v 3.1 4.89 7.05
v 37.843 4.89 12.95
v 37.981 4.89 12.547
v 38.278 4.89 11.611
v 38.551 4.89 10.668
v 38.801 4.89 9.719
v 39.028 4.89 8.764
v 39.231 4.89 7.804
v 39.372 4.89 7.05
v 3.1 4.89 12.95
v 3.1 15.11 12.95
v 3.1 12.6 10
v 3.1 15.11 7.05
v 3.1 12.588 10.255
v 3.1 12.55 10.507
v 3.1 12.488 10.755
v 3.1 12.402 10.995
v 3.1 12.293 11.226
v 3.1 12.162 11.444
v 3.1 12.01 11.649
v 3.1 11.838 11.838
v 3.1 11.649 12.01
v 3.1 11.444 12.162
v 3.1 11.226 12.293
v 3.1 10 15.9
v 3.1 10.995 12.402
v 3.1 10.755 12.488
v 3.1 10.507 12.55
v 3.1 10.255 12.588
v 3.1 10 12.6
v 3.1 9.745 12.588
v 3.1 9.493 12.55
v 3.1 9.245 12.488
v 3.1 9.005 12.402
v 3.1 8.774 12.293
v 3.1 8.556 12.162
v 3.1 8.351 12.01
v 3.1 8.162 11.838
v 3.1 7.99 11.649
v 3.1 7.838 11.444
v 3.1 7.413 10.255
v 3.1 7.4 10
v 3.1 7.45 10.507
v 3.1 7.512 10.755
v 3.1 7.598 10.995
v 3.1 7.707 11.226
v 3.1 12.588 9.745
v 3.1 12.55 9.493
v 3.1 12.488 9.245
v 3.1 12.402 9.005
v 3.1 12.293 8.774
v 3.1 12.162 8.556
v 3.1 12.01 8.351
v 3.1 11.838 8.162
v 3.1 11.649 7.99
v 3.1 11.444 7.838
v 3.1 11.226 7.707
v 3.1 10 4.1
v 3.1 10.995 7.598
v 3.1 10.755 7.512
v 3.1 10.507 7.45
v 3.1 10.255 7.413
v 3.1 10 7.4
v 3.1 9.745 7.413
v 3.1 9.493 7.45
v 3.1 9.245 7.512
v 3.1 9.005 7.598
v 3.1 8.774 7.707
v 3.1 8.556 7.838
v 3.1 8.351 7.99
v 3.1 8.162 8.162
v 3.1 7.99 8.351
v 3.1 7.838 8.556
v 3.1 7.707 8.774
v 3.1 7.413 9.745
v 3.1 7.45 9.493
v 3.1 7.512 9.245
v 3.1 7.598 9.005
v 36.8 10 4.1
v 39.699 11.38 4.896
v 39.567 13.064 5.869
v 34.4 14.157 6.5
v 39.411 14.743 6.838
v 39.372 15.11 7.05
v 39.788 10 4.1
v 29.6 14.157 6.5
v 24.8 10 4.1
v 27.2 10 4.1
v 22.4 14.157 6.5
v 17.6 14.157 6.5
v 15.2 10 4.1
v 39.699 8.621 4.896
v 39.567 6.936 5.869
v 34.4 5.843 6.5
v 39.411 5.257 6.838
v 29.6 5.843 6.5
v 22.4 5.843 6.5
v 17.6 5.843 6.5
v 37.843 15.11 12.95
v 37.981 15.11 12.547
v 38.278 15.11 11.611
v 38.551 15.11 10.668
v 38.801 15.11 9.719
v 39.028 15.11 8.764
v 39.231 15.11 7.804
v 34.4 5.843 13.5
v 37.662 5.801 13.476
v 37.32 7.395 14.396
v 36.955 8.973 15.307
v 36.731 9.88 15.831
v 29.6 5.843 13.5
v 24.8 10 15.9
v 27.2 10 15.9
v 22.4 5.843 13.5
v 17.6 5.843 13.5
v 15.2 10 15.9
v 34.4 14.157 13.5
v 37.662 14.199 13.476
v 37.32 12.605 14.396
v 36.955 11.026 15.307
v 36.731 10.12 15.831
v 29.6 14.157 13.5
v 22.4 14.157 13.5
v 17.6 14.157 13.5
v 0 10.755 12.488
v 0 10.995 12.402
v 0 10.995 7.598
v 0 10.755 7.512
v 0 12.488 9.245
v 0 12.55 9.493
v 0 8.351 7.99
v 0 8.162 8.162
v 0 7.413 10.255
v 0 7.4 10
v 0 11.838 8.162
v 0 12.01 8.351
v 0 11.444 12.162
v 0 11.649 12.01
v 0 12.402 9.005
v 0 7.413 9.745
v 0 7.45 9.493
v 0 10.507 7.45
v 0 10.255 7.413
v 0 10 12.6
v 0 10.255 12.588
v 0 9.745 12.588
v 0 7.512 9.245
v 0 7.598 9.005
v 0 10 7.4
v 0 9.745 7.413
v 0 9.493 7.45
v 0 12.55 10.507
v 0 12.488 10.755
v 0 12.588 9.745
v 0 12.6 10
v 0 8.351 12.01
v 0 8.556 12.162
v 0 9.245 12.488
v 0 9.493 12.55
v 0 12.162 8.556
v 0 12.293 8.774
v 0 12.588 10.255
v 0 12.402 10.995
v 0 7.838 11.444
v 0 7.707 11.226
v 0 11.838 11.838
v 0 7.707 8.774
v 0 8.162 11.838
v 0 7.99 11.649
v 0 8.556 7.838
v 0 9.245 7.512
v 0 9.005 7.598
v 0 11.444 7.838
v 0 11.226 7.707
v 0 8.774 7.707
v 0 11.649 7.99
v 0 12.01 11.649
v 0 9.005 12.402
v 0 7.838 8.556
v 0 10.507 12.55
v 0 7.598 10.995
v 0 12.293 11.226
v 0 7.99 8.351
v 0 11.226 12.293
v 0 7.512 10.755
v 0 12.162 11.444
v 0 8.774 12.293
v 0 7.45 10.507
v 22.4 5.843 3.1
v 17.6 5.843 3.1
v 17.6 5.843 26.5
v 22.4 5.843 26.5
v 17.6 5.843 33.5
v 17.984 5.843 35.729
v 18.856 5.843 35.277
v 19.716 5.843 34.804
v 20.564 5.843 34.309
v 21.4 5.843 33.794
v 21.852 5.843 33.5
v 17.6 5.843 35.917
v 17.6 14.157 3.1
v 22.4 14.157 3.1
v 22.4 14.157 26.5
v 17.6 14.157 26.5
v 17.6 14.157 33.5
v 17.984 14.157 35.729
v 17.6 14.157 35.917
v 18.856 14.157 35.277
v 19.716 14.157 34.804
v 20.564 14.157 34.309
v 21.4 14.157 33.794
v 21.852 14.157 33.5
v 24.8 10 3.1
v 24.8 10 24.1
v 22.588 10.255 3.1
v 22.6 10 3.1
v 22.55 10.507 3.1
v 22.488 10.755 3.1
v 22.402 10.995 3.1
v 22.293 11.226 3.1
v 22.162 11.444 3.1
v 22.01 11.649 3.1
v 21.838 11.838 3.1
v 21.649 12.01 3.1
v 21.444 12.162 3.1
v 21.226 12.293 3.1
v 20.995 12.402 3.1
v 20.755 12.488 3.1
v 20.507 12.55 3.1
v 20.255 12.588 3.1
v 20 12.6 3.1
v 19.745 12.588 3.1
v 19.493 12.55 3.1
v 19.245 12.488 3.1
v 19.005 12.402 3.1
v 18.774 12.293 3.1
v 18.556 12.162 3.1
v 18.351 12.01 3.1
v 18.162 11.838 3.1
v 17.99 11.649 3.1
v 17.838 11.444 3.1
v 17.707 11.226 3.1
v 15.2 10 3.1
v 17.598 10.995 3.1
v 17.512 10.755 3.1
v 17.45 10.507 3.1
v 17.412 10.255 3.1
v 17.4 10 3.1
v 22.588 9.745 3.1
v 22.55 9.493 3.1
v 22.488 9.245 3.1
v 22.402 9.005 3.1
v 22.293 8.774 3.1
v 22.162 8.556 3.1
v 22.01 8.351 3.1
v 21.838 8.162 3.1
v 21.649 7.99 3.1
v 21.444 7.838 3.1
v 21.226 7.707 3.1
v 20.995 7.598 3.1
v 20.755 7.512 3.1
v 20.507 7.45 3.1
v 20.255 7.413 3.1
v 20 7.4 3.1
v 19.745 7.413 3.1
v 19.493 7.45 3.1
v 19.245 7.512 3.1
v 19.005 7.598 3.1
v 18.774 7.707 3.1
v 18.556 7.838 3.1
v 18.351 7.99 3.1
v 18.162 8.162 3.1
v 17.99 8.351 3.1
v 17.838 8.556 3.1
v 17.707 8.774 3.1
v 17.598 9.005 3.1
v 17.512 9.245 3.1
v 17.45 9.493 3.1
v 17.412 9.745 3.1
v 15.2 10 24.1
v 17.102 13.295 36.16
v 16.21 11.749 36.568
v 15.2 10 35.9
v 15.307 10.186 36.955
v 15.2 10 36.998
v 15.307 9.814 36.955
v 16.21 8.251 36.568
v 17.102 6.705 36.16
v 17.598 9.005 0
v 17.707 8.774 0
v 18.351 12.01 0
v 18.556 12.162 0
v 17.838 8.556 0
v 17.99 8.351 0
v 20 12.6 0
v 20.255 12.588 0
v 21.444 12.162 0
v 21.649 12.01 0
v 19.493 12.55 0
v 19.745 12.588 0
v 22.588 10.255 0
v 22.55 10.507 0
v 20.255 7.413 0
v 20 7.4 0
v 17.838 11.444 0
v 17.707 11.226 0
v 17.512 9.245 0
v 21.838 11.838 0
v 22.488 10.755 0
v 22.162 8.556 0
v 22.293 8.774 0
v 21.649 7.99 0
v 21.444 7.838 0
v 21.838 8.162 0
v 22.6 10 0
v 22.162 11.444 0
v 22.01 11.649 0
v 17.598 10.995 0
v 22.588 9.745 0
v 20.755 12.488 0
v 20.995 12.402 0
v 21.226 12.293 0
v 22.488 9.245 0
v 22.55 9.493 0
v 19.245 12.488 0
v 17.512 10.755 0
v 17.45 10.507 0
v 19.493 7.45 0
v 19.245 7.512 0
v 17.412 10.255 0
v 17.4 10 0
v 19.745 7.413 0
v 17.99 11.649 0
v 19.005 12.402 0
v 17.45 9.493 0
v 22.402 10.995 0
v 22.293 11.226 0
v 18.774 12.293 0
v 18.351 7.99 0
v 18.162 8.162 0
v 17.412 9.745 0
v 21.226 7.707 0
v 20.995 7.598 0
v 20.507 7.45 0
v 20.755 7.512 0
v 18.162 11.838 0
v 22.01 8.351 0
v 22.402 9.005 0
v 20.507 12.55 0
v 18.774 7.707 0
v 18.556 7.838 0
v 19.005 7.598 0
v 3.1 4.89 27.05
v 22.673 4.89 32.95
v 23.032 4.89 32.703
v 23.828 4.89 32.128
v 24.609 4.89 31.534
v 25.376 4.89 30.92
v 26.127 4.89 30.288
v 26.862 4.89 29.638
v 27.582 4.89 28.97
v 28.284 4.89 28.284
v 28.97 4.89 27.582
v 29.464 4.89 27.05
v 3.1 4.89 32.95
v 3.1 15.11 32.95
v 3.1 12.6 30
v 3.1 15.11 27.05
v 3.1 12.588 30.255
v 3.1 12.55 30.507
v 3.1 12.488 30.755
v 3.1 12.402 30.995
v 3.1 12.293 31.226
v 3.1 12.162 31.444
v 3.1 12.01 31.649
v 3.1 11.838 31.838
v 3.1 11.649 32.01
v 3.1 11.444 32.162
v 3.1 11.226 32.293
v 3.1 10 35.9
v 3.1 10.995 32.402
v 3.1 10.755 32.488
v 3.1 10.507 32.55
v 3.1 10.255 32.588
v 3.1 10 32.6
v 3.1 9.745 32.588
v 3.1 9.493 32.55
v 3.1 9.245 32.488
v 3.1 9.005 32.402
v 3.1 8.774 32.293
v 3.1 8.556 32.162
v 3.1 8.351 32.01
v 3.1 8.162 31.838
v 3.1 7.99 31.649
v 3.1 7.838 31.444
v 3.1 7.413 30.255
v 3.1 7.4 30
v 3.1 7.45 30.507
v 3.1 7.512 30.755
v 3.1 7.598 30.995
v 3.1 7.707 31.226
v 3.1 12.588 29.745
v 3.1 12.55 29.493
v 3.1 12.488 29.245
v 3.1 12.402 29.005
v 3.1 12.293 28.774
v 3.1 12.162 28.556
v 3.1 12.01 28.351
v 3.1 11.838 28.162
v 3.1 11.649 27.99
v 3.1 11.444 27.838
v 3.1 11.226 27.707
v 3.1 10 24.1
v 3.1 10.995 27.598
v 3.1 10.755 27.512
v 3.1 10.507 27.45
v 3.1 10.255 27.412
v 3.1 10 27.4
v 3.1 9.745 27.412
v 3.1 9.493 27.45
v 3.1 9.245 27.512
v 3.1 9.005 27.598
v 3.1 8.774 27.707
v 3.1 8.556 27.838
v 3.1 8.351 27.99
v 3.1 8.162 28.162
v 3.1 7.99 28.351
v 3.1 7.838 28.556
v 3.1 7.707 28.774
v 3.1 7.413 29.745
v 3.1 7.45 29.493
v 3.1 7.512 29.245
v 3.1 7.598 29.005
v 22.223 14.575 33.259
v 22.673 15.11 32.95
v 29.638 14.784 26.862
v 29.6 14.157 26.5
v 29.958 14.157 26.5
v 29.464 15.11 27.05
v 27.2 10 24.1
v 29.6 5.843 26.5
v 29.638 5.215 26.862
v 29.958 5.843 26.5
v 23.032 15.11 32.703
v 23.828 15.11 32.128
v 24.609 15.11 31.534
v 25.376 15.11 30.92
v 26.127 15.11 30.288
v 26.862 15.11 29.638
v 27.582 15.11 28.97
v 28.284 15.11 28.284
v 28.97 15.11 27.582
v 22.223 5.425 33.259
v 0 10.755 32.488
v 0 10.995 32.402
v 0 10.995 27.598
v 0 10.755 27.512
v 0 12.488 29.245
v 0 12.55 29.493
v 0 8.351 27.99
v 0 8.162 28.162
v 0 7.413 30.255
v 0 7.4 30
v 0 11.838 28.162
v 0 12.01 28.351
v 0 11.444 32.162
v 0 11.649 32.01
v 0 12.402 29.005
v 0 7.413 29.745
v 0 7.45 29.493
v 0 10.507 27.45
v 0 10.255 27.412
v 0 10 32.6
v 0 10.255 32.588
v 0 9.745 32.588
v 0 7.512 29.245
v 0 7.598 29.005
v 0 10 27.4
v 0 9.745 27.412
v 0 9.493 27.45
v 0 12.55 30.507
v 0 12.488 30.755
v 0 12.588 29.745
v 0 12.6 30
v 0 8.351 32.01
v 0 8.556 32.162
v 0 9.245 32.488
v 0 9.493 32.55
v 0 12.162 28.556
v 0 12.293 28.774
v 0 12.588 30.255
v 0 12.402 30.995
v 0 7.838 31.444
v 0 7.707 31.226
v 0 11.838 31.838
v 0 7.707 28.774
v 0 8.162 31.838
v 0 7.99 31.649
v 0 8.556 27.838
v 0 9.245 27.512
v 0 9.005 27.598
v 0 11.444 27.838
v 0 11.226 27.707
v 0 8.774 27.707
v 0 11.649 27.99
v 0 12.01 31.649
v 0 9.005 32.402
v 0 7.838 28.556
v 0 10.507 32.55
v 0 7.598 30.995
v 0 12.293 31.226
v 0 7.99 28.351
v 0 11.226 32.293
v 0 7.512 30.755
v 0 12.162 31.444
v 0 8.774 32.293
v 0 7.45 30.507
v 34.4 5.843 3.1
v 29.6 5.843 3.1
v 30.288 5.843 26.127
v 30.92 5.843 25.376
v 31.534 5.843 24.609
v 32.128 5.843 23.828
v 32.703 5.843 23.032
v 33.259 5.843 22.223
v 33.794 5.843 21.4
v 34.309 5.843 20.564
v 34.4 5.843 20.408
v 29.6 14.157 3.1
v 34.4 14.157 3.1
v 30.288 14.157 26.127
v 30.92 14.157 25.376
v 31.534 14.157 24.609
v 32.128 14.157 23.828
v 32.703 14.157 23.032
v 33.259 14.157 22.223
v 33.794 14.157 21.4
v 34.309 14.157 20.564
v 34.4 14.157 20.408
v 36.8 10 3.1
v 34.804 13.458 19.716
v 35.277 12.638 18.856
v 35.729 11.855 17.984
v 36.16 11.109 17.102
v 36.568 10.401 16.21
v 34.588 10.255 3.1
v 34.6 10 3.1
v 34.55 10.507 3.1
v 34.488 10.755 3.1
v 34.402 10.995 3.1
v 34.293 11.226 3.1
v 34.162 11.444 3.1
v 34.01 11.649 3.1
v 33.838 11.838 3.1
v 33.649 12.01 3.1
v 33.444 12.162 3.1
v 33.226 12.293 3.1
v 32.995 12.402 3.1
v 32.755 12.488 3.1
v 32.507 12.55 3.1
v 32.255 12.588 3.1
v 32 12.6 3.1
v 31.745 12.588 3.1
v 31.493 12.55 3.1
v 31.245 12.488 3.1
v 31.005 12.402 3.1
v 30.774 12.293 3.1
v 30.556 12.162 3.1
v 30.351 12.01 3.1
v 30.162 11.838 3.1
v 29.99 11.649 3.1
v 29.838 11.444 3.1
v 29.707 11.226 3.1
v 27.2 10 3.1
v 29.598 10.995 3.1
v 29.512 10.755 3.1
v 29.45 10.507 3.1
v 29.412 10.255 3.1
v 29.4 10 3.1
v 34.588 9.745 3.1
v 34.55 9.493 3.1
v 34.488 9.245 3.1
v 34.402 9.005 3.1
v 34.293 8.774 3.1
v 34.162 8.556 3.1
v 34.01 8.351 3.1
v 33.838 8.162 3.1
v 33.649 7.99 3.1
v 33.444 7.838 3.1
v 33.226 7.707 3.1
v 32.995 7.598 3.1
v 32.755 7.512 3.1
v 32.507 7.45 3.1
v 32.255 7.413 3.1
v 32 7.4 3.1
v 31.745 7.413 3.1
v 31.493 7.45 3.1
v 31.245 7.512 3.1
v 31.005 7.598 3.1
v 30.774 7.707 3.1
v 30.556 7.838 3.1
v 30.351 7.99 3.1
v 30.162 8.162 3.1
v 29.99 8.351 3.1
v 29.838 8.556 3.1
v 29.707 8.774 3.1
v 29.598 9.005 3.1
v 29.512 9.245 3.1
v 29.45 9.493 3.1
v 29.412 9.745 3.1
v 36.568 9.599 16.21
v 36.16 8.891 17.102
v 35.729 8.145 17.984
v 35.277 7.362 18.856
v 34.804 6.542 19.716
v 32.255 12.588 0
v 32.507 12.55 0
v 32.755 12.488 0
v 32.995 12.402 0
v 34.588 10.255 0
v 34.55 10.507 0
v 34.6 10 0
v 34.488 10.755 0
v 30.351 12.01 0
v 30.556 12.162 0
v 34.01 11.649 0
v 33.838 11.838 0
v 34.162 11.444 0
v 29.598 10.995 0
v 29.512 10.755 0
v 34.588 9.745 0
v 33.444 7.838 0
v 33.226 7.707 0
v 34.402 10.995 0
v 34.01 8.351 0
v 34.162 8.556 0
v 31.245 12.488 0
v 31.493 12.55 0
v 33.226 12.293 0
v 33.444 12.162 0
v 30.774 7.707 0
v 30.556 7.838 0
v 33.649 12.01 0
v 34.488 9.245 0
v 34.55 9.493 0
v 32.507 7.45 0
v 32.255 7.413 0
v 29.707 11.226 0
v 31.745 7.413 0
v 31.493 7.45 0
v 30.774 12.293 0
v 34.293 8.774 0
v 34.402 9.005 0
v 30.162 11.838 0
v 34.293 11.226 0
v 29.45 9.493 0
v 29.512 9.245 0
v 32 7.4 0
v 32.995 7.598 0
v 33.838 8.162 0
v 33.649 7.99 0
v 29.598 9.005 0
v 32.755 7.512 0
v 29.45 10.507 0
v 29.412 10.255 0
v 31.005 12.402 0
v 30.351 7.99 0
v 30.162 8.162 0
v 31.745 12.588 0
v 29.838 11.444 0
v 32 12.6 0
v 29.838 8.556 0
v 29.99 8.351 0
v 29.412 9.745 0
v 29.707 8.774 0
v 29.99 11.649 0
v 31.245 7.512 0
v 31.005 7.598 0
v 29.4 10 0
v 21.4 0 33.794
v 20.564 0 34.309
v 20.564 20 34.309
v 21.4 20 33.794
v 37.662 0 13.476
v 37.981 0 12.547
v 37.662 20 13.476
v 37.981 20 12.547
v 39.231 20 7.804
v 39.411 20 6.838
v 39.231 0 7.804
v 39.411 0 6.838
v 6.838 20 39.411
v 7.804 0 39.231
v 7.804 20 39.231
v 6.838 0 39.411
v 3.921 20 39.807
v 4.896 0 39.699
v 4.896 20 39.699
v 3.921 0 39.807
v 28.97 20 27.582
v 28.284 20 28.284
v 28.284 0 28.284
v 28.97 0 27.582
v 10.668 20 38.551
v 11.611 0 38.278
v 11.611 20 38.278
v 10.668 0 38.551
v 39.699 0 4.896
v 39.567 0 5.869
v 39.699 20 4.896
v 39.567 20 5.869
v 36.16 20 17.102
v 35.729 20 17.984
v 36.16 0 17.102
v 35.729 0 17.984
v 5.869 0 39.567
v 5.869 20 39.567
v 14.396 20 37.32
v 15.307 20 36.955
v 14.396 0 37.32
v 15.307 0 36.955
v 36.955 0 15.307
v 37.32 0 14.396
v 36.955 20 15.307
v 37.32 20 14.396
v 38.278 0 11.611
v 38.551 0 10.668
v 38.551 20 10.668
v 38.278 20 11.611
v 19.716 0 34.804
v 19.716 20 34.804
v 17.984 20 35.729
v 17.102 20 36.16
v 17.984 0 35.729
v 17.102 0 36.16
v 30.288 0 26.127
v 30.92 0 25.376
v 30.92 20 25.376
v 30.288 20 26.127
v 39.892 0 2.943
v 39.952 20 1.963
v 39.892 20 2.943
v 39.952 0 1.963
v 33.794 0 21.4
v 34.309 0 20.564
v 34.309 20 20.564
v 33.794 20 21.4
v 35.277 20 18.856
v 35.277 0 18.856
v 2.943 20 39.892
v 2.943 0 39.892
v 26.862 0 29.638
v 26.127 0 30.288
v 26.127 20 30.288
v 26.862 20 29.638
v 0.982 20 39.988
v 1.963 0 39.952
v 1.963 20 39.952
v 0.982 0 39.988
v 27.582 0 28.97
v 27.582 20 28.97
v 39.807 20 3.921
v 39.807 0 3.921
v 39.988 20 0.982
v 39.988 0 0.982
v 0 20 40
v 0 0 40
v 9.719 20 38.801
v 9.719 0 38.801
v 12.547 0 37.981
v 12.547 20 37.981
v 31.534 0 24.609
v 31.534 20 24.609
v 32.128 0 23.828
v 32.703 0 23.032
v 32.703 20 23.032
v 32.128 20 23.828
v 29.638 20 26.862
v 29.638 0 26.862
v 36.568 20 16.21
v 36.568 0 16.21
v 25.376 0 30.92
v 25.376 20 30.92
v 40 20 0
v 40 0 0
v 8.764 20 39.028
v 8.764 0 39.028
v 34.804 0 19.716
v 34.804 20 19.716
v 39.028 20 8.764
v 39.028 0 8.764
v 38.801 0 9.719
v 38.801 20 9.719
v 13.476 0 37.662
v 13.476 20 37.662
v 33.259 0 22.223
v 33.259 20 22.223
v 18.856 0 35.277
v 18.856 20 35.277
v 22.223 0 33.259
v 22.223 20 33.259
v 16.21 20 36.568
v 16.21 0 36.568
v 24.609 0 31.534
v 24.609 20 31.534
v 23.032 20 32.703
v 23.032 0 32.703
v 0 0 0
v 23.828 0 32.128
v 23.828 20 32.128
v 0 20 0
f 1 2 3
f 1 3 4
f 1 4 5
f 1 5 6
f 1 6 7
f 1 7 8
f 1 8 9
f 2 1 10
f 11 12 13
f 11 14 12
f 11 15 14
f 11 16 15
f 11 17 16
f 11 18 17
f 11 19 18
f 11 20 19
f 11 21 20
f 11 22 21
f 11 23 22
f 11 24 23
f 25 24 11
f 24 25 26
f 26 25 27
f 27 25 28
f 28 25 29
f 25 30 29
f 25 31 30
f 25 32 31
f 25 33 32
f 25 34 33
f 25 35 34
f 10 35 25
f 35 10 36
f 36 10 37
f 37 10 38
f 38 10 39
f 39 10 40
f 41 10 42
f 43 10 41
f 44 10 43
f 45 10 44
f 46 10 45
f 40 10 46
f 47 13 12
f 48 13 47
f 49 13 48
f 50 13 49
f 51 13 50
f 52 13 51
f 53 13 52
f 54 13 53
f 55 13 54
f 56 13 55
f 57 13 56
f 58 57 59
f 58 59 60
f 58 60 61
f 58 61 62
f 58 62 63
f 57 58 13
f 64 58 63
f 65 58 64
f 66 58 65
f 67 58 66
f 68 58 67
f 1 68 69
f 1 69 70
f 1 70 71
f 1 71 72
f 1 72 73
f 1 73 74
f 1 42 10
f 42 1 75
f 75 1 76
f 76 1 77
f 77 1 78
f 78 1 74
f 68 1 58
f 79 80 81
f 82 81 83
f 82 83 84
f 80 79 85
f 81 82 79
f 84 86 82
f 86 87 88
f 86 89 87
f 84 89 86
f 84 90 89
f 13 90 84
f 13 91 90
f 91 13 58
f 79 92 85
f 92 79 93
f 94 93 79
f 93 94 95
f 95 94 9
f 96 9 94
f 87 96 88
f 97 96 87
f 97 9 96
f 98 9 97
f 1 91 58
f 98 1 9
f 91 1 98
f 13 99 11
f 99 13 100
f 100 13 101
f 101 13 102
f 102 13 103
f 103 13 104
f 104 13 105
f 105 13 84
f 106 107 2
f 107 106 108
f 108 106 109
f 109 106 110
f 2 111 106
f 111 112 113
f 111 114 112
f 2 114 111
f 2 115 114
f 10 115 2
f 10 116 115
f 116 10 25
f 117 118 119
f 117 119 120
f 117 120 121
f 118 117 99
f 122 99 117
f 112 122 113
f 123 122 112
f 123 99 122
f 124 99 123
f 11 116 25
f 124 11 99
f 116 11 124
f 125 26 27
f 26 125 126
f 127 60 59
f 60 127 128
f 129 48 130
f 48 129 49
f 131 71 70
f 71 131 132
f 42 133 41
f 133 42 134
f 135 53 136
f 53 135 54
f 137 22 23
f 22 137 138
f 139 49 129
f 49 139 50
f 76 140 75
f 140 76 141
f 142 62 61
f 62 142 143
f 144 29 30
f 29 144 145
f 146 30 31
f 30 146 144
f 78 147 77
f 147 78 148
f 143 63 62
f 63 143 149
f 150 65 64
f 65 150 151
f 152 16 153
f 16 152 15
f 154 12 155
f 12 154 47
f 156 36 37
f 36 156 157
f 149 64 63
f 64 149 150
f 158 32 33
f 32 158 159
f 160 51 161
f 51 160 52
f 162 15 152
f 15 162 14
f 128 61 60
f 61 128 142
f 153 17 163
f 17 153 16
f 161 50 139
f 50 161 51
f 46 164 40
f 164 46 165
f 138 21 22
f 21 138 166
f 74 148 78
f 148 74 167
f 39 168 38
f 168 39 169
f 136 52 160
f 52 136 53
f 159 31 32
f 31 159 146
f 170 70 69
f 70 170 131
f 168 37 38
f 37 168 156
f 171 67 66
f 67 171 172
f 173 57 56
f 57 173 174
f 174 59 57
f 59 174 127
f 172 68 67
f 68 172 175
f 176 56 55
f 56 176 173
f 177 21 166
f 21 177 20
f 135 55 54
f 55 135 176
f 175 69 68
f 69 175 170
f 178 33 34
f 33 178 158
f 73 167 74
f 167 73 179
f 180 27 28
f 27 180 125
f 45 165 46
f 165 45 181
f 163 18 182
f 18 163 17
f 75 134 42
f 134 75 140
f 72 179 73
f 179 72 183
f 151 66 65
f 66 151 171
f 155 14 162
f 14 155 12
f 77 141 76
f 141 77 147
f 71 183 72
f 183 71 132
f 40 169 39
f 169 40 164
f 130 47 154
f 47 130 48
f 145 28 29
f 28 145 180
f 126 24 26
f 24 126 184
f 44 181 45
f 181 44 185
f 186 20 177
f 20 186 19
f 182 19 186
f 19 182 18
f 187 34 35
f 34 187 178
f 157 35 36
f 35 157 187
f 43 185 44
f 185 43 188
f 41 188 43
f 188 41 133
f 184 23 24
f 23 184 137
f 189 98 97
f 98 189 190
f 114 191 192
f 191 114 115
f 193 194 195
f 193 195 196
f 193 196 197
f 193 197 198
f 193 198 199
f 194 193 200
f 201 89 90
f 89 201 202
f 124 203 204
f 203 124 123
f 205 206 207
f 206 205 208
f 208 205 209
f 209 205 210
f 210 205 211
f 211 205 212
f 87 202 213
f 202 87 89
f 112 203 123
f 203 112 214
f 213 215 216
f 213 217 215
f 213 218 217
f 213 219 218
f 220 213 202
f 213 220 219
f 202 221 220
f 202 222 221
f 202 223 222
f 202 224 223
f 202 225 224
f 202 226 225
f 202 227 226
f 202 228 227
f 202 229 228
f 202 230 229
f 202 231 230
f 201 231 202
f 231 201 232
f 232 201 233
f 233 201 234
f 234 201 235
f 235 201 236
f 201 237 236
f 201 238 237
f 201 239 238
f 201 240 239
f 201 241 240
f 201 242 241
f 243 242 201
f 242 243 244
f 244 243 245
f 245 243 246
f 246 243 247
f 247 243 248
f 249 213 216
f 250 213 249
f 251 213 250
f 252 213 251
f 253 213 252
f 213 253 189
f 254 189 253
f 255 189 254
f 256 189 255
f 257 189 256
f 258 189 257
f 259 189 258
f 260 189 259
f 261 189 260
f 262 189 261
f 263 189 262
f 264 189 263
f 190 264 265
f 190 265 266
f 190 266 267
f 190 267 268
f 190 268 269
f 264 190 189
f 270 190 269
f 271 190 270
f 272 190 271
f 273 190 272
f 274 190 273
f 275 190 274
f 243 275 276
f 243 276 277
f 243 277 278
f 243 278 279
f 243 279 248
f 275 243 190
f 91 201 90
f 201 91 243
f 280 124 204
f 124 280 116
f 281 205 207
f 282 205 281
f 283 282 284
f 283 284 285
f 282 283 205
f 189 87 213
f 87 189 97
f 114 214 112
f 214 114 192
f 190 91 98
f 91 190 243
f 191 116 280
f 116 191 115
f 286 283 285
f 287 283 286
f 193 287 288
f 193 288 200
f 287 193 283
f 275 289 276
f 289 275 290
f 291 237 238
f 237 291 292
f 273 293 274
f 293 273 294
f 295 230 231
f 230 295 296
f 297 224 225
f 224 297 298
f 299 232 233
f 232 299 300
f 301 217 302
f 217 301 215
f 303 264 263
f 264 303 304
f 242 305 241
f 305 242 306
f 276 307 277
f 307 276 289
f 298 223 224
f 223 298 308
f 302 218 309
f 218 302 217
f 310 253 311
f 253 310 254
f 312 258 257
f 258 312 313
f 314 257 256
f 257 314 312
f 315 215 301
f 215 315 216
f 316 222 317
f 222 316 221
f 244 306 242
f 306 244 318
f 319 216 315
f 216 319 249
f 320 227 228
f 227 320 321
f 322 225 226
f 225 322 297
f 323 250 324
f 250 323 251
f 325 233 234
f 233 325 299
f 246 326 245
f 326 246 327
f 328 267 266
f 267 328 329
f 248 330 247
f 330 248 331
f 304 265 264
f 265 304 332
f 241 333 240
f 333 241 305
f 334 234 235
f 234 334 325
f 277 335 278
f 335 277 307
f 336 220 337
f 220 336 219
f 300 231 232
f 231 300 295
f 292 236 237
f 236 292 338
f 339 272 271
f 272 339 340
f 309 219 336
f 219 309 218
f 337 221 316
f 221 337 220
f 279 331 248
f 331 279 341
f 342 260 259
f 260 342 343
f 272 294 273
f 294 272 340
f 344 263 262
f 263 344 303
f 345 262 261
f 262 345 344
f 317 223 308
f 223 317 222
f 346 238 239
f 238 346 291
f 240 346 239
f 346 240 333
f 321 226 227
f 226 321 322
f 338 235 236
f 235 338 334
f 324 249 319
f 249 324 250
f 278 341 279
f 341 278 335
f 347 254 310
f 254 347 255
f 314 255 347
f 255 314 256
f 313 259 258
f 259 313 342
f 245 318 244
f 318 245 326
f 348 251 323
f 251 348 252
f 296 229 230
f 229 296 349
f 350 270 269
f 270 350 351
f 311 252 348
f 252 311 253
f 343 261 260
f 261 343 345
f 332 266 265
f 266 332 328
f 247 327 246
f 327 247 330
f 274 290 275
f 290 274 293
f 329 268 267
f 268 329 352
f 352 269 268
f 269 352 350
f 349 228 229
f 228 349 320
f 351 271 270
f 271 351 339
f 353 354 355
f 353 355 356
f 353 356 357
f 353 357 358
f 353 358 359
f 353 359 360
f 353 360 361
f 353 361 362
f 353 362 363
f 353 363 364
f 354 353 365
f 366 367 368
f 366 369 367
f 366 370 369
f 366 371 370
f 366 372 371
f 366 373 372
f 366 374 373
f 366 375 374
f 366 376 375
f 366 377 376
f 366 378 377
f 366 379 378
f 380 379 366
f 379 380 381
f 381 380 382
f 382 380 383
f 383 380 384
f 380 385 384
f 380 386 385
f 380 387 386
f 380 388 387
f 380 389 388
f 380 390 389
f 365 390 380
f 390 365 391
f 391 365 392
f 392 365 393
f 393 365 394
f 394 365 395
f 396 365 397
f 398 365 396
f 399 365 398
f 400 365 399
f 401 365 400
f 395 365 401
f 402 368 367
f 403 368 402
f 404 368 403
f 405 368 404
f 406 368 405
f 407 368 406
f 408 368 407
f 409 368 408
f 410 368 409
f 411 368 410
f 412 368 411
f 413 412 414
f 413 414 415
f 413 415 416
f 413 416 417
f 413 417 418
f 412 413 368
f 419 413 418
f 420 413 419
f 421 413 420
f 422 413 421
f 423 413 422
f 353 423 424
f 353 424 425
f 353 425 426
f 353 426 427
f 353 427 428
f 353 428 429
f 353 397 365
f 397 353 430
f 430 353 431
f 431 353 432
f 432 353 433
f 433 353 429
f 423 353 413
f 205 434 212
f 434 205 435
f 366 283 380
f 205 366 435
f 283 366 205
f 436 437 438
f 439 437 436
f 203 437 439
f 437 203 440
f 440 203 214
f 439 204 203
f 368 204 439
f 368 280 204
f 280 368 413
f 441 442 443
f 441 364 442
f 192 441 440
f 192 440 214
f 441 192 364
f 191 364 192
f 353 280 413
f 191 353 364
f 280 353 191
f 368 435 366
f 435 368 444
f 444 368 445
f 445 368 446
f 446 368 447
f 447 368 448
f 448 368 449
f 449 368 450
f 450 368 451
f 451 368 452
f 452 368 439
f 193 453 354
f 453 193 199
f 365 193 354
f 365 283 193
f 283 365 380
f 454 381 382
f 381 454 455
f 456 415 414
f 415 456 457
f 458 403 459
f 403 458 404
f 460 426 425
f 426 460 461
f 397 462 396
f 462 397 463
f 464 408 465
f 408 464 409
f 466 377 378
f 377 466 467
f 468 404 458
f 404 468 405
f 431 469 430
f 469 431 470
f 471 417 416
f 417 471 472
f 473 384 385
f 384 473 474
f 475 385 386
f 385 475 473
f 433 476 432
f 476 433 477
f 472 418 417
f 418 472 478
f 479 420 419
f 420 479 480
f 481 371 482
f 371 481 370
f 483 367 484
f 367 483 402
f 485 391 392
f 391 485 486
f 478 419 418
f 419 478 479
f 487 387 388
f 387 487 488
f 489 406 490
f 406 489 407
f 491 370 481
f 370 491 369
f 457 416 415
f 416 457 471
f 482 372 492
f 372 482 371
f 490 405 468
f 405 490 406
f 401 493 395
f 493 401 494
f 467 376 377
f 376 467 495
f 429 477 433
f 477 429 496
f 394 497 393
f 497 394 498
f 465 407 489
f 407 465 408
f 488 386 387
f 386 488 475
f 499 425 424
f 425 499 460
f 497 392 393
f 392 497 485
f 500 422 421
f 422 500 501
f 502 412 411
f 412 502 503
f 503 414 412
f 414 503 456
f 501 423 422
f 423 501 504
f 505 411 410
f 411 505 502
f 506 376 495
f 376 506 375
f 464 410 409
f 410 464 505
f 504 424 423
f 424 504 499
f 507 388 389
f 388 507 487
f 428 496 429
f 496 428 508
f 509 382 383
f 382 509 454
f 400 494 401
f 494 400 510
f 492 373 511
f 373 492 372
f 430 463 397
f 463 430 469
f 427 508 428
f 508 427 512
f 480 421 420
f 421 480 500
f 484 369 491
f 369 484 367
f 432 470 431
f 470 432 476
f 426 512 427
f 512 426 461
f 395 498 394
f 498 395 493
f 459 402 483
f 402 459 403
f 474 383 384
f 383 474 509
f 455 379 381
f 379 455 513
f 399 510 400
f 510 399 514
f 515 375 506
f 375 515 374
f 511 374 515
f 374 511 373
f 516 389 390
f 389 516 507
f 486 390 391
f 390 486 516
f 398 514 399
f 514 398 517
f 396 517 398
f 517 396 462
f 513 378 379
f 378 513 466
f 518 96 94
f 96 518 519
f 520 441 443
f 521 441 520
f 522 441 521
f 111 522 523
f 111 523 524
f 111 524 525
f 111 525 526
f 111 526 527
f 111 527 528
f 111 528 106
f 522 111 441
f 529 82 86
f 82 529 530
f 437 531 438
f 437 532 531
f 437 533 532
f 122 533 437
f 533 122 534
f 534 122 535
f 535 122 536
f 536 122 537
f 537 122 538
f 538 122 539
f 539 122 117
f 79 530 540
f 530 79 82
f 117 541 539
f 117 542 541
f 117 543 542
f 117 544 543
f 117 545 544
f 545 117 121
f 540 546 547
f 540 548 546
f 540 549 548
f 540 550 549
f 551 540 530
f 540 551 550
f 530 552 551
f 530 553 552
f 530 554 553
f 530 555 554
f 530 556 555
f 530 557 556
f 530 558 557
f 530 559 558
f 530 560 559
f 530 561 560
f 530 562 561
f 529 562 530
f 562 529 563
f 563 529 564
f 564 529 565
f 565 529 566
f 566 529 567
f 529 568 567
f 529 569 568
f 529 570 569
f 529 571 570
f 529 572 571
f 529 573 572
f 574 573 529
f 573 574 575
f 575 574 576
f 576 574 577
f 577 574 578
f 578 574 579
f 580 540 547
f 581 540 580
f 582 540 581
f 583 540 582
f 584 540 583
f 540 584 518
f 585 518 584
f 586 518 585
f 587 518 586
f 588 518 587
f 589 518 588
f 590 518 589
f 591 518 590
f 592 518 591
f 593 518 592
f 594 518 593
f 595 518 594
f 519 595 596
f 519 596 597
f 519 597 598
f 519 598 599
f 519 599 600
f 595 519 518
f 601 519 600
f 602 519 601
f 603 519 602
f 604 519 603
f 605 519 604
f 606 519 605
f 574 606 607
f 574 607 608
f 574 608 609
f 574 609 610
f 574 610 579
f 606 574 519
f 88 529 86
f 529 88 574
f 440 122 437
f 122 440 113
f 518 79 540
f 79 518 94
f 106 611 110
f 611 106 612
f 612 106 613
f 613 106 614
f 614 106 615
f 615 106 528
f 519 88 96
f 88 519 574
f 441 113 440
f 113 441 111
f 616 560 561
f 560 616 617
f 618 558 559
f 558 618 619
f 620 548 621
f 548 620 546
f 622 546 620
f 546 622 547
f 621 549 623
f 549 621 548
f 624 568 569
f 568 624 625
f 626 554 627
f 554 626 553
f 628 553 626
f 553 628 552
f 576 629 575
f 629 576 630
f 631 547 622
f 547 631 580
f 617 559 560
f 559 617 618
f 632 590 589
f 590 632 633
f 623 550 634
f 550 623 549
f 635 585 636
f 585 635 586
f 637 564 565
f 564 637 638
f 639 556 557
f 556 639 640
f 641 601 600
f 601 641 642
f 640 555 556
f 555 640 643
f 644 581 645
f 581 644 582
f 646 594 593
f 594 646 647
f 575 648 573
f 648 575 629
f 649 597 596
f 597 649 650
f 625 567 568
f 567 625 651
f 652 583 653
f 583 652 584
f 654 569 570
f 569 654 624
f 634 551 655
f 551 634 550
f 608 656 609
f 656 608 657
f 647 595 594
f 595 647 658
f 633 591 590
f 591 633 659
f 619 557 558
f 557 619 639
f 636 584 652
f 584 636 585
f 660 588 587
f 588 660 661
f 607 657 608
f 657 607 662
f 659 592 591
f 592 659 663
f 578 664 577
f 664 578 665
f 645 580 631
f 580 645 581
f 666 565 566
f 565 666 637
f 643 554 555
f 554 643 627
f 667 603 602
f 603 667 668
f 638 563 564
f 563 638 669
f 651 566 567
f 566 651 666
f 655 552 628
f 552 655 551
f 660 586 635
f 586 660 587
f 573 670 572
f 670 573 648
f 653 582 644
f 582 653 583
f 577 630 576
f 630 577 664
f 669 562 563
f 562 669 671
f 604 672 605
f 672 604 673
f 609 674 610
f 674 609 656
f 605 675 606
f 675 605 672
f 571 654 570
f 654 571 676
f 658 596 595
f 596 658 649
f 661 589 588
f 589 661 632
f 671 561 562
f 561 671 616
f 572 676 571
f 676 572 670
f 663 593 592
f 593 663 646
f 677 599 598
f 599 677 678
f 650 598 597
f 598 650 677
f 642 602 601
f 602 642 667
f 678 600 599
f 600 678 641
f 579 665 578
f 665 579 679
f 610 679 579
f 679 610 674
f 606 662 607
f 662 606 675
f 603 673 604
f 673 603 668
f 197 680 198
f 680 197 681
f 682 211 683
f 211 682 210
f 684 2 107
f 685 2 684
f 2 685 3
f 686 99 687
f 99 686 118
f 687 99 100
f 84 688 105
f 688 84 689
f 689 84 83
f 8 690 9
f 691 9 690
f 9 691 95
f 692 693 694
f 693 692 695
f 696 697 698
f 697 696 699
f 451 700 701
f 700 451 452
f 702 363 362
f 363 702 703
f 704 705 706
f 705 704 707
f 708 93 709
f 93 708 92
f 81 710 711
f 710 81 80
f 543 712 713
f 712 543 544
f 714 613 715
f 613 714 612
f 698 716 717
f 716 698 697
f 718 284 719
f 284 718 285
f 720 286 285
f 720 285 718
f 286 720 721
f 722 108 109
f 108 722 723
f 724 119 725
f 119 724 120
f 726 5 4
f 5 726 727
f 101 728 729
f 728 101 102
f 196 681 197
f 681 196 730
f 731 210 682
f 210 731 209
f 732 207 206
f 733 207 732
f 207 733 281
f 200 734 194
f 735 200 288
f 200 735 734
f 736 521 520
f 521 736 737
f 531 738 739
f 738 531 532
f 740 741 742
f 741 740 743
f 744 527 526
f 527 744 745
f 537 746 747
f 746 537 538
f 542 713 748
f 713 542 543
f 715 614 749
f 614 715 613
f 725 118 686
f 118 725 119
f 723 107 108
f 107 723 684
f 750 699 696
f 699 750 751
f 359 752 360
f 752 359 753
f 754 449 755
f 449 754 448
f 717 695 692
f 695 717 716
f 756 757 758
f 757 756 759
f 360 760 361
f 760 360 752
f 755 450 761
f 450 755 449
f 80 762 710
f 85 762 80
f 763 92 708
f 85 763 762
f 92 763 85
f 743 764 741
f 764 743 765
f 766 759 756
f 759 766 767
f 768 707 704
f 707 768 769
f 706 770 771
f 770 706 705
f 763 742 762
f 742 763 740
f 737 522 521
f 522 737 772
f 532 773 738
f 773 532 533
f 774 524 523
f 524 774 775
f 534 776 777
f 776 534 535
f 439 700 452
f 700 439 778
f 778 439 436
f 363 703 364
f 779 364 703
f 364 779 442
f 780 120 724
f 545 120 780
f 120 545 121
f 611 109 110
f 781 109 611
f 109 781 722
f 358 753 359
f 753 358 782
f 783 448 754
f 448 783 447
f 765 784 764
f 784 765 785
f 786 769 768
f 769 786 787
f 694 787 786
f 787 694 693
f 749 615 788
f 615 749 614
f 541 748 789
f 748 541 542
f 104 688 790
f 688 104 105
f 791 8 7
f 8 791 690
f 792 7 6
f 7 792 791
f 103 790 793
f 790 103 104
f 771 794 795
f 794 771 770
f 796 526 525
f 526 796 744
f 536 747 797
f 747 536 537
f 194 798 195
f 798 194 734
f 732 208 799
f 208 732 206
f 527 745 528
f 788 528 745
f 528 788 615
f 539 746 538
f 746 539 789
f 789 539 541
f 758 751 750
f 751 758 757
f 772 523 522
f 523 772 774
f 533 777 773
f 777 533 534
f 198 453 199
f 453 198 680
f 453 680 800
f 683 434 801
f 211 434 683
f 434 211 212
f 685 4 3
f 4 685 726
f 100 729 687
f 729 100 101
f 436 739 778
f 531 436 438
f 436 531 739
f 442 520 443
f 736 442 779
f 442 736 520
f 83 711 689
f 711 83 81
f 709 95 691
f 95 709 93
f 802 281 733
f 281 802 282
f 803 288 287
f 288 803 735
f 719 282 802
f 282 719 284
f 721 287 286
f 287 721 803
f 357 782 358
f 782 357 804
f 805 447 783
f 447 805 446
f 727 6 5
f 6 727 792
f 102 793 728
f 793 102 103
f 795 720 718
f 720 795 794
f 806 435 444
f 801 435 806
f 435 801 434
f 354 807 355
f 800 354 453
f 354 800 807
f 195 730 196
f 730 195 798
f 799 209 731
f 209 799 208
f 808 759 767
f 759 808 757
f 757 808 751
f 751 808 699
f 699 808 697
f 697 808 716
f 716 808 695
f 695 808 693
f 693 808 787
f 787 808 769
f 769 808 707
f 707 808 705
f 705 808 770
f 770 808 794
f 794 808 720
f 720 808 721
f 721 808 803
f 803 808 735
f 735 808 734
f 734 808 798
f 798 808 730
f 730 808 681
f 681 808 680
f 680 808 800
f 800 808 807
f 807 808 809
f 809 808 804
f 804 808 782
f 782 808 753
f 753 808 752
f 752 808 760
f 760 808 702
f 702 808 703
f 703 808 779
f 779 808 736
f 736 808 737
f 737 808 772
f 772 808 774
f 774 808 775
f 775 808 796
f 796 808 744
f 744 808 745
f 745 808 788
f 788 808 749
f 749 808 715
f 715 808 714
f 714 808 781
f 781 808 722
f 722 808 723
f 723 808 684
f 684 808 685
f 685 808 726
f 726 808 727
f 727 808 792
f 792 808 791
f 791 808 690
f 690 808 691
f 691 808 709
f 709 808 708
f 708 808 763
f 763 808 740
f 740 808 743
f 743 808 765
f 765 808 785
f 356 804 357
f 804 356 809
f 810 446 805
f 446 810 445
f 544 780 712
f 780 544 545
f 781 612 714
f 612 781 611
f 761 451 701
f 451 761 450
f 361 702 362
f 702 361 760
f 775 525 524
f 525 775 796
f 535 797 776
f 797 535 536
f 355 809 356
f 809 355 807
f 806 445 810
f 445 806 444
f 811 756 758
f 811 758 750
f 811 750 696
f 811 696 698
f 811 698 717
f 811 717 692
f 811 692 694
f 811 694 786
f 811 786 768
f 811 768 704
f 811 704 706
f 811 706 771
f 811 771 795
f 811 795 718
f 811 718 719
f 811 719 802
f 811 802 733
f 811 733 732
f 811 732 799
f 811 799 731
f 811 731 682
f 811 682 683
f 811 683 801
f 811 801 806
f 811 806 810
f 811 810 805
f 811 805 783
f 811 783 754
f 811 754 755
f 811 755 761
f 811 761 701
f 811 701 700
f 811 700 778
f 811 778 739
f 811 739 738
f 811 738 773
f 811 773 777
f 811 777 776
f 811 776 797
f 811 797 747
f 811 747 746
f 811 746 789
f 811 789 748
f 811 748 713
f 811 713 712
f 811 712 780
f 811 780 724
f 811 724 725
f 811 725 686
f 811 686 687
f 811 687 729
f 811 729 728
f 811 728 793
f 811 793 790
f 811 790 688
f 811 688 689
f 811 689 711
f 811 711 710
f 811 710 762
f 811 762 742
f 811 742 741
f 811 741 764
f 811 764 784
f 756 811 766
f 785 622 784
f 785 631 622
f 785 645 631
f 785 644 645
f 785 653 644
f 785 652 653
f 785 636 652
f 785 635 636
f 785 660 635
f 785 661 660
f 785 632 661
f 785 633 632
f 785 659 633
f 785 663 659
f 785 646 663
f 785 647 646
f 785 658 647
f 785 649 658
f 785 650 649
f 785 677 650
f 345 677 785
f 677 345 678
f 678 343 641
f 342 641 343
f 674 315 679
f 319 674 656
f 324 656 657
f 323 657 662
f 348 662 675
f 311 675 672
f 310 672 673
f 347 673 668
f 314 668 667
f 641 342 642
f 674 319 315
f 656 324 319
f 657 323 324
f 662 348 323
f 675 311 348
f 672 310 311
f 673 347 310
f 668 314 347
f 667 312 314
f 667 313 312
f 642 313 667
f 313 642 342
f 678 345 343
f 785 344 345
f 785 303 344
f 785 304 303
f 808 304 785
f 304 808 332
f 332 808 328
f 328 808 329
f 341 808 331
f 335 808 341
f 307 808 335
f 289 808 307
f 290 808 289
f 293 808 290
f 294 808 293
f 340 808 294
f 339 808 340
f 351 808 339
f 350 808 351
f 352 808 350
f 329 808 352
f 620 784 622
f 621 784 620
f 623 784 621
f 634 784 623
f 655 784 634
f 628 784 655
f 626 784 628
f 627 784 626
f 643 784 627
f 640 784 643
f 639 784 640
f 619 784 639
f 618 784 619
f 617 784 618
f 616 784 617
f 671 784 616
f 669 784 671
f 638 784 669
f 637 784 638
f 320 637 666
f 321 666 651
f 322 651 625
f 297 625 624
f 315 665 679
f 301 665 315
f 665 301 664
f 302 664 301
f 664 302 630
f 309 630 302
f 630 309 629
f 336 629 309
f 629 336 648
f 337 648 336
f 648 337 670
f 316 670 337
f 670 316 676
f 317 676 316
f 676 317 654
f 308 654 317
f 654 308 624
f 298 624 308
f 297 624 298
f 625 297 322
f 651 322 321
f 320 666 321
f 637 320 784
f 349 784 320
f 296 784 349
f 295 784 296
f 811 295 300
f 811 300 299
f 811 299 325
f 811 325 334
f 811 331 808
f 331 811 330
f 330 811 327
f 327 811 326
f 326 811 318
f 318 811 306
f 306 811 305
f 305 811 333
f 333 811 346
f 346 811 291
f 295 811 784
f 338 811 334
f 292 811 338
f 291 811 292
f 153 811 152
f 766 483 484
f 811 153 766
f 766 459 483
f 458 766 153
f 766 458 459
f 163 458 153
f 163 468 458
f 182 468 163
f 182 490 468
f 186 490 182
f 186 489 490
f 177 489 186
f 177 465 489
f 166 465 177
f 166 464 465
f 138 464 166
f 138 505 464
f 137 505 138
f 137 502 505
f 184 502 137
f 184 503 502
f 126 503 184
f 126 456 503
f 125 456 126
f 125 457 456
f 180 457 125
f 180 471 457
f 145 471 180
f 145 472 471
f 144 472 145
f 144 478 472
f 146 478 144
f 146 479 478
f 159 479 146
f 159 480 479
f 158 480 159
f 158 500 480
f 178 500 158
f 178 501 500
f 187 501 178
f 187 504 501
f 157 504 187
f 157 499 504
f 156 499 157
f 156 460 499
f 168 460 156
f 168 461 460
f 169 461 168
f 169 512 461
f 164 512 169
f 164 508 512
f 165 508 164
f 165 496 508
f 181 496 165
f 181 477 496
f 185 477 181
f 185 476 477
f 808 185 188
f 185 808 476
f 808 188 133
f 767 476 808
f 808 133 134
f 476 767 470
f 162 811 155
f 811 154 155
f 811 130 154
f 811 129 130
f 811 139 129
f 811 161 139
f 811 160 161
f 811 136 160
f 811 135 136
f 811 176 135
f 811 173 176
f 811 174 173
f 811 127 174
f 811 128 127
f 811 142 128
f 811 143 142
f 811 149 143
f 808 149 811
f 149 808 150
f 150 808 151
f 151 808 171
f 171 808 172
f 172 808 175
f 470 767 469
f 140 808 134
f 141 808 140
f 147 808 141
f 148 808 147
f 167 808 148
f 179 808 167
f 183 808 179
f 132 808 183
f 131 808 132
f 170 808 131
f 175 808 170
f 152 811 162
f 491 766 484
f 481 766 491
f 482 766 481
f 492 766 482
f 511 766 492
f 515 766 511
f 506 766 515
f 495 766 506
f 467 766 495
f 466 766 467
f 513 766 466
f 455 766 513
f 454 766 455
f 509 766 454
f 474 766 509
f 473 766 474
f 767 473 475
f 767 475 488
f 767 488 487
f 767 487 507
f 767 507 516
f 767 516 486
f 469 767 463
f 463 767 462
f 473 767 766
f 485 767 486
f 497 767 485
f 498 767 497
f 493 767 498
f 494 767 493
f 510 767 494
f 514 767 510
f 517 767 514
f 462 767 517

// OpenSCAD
m5washer_dia=11.8;
m5nut_dia=9.6;
difference() {
    rotate([-90, 0, 0]) cylinder(r=40, h=20, $fn=256);
    translate([-50, -1, -50]) cube([100, 52, 50]);
    translate([-50, -1, -1]) cube([50, 52, 52]);
    for(i=[0, 1]) {
        translate([3.1, 10, 10+i*20]) rotate([0, 90, 0]) cylinder(d=m5washer_dia, h=50, $fn=6);
        translate([-1, 10, 10+i*20]) rotate([0, 90, 0]) cylinder(d=5.2, h=50, $fn=64);
        translate([20+i*12, 10, 3.1]) cylinder(d=m5nut_dia, h=50, $fn=6);
        translate([20+i*12, 10, -1]) cylinder(d=5.2, h=50, $fn=64);
    }
}
